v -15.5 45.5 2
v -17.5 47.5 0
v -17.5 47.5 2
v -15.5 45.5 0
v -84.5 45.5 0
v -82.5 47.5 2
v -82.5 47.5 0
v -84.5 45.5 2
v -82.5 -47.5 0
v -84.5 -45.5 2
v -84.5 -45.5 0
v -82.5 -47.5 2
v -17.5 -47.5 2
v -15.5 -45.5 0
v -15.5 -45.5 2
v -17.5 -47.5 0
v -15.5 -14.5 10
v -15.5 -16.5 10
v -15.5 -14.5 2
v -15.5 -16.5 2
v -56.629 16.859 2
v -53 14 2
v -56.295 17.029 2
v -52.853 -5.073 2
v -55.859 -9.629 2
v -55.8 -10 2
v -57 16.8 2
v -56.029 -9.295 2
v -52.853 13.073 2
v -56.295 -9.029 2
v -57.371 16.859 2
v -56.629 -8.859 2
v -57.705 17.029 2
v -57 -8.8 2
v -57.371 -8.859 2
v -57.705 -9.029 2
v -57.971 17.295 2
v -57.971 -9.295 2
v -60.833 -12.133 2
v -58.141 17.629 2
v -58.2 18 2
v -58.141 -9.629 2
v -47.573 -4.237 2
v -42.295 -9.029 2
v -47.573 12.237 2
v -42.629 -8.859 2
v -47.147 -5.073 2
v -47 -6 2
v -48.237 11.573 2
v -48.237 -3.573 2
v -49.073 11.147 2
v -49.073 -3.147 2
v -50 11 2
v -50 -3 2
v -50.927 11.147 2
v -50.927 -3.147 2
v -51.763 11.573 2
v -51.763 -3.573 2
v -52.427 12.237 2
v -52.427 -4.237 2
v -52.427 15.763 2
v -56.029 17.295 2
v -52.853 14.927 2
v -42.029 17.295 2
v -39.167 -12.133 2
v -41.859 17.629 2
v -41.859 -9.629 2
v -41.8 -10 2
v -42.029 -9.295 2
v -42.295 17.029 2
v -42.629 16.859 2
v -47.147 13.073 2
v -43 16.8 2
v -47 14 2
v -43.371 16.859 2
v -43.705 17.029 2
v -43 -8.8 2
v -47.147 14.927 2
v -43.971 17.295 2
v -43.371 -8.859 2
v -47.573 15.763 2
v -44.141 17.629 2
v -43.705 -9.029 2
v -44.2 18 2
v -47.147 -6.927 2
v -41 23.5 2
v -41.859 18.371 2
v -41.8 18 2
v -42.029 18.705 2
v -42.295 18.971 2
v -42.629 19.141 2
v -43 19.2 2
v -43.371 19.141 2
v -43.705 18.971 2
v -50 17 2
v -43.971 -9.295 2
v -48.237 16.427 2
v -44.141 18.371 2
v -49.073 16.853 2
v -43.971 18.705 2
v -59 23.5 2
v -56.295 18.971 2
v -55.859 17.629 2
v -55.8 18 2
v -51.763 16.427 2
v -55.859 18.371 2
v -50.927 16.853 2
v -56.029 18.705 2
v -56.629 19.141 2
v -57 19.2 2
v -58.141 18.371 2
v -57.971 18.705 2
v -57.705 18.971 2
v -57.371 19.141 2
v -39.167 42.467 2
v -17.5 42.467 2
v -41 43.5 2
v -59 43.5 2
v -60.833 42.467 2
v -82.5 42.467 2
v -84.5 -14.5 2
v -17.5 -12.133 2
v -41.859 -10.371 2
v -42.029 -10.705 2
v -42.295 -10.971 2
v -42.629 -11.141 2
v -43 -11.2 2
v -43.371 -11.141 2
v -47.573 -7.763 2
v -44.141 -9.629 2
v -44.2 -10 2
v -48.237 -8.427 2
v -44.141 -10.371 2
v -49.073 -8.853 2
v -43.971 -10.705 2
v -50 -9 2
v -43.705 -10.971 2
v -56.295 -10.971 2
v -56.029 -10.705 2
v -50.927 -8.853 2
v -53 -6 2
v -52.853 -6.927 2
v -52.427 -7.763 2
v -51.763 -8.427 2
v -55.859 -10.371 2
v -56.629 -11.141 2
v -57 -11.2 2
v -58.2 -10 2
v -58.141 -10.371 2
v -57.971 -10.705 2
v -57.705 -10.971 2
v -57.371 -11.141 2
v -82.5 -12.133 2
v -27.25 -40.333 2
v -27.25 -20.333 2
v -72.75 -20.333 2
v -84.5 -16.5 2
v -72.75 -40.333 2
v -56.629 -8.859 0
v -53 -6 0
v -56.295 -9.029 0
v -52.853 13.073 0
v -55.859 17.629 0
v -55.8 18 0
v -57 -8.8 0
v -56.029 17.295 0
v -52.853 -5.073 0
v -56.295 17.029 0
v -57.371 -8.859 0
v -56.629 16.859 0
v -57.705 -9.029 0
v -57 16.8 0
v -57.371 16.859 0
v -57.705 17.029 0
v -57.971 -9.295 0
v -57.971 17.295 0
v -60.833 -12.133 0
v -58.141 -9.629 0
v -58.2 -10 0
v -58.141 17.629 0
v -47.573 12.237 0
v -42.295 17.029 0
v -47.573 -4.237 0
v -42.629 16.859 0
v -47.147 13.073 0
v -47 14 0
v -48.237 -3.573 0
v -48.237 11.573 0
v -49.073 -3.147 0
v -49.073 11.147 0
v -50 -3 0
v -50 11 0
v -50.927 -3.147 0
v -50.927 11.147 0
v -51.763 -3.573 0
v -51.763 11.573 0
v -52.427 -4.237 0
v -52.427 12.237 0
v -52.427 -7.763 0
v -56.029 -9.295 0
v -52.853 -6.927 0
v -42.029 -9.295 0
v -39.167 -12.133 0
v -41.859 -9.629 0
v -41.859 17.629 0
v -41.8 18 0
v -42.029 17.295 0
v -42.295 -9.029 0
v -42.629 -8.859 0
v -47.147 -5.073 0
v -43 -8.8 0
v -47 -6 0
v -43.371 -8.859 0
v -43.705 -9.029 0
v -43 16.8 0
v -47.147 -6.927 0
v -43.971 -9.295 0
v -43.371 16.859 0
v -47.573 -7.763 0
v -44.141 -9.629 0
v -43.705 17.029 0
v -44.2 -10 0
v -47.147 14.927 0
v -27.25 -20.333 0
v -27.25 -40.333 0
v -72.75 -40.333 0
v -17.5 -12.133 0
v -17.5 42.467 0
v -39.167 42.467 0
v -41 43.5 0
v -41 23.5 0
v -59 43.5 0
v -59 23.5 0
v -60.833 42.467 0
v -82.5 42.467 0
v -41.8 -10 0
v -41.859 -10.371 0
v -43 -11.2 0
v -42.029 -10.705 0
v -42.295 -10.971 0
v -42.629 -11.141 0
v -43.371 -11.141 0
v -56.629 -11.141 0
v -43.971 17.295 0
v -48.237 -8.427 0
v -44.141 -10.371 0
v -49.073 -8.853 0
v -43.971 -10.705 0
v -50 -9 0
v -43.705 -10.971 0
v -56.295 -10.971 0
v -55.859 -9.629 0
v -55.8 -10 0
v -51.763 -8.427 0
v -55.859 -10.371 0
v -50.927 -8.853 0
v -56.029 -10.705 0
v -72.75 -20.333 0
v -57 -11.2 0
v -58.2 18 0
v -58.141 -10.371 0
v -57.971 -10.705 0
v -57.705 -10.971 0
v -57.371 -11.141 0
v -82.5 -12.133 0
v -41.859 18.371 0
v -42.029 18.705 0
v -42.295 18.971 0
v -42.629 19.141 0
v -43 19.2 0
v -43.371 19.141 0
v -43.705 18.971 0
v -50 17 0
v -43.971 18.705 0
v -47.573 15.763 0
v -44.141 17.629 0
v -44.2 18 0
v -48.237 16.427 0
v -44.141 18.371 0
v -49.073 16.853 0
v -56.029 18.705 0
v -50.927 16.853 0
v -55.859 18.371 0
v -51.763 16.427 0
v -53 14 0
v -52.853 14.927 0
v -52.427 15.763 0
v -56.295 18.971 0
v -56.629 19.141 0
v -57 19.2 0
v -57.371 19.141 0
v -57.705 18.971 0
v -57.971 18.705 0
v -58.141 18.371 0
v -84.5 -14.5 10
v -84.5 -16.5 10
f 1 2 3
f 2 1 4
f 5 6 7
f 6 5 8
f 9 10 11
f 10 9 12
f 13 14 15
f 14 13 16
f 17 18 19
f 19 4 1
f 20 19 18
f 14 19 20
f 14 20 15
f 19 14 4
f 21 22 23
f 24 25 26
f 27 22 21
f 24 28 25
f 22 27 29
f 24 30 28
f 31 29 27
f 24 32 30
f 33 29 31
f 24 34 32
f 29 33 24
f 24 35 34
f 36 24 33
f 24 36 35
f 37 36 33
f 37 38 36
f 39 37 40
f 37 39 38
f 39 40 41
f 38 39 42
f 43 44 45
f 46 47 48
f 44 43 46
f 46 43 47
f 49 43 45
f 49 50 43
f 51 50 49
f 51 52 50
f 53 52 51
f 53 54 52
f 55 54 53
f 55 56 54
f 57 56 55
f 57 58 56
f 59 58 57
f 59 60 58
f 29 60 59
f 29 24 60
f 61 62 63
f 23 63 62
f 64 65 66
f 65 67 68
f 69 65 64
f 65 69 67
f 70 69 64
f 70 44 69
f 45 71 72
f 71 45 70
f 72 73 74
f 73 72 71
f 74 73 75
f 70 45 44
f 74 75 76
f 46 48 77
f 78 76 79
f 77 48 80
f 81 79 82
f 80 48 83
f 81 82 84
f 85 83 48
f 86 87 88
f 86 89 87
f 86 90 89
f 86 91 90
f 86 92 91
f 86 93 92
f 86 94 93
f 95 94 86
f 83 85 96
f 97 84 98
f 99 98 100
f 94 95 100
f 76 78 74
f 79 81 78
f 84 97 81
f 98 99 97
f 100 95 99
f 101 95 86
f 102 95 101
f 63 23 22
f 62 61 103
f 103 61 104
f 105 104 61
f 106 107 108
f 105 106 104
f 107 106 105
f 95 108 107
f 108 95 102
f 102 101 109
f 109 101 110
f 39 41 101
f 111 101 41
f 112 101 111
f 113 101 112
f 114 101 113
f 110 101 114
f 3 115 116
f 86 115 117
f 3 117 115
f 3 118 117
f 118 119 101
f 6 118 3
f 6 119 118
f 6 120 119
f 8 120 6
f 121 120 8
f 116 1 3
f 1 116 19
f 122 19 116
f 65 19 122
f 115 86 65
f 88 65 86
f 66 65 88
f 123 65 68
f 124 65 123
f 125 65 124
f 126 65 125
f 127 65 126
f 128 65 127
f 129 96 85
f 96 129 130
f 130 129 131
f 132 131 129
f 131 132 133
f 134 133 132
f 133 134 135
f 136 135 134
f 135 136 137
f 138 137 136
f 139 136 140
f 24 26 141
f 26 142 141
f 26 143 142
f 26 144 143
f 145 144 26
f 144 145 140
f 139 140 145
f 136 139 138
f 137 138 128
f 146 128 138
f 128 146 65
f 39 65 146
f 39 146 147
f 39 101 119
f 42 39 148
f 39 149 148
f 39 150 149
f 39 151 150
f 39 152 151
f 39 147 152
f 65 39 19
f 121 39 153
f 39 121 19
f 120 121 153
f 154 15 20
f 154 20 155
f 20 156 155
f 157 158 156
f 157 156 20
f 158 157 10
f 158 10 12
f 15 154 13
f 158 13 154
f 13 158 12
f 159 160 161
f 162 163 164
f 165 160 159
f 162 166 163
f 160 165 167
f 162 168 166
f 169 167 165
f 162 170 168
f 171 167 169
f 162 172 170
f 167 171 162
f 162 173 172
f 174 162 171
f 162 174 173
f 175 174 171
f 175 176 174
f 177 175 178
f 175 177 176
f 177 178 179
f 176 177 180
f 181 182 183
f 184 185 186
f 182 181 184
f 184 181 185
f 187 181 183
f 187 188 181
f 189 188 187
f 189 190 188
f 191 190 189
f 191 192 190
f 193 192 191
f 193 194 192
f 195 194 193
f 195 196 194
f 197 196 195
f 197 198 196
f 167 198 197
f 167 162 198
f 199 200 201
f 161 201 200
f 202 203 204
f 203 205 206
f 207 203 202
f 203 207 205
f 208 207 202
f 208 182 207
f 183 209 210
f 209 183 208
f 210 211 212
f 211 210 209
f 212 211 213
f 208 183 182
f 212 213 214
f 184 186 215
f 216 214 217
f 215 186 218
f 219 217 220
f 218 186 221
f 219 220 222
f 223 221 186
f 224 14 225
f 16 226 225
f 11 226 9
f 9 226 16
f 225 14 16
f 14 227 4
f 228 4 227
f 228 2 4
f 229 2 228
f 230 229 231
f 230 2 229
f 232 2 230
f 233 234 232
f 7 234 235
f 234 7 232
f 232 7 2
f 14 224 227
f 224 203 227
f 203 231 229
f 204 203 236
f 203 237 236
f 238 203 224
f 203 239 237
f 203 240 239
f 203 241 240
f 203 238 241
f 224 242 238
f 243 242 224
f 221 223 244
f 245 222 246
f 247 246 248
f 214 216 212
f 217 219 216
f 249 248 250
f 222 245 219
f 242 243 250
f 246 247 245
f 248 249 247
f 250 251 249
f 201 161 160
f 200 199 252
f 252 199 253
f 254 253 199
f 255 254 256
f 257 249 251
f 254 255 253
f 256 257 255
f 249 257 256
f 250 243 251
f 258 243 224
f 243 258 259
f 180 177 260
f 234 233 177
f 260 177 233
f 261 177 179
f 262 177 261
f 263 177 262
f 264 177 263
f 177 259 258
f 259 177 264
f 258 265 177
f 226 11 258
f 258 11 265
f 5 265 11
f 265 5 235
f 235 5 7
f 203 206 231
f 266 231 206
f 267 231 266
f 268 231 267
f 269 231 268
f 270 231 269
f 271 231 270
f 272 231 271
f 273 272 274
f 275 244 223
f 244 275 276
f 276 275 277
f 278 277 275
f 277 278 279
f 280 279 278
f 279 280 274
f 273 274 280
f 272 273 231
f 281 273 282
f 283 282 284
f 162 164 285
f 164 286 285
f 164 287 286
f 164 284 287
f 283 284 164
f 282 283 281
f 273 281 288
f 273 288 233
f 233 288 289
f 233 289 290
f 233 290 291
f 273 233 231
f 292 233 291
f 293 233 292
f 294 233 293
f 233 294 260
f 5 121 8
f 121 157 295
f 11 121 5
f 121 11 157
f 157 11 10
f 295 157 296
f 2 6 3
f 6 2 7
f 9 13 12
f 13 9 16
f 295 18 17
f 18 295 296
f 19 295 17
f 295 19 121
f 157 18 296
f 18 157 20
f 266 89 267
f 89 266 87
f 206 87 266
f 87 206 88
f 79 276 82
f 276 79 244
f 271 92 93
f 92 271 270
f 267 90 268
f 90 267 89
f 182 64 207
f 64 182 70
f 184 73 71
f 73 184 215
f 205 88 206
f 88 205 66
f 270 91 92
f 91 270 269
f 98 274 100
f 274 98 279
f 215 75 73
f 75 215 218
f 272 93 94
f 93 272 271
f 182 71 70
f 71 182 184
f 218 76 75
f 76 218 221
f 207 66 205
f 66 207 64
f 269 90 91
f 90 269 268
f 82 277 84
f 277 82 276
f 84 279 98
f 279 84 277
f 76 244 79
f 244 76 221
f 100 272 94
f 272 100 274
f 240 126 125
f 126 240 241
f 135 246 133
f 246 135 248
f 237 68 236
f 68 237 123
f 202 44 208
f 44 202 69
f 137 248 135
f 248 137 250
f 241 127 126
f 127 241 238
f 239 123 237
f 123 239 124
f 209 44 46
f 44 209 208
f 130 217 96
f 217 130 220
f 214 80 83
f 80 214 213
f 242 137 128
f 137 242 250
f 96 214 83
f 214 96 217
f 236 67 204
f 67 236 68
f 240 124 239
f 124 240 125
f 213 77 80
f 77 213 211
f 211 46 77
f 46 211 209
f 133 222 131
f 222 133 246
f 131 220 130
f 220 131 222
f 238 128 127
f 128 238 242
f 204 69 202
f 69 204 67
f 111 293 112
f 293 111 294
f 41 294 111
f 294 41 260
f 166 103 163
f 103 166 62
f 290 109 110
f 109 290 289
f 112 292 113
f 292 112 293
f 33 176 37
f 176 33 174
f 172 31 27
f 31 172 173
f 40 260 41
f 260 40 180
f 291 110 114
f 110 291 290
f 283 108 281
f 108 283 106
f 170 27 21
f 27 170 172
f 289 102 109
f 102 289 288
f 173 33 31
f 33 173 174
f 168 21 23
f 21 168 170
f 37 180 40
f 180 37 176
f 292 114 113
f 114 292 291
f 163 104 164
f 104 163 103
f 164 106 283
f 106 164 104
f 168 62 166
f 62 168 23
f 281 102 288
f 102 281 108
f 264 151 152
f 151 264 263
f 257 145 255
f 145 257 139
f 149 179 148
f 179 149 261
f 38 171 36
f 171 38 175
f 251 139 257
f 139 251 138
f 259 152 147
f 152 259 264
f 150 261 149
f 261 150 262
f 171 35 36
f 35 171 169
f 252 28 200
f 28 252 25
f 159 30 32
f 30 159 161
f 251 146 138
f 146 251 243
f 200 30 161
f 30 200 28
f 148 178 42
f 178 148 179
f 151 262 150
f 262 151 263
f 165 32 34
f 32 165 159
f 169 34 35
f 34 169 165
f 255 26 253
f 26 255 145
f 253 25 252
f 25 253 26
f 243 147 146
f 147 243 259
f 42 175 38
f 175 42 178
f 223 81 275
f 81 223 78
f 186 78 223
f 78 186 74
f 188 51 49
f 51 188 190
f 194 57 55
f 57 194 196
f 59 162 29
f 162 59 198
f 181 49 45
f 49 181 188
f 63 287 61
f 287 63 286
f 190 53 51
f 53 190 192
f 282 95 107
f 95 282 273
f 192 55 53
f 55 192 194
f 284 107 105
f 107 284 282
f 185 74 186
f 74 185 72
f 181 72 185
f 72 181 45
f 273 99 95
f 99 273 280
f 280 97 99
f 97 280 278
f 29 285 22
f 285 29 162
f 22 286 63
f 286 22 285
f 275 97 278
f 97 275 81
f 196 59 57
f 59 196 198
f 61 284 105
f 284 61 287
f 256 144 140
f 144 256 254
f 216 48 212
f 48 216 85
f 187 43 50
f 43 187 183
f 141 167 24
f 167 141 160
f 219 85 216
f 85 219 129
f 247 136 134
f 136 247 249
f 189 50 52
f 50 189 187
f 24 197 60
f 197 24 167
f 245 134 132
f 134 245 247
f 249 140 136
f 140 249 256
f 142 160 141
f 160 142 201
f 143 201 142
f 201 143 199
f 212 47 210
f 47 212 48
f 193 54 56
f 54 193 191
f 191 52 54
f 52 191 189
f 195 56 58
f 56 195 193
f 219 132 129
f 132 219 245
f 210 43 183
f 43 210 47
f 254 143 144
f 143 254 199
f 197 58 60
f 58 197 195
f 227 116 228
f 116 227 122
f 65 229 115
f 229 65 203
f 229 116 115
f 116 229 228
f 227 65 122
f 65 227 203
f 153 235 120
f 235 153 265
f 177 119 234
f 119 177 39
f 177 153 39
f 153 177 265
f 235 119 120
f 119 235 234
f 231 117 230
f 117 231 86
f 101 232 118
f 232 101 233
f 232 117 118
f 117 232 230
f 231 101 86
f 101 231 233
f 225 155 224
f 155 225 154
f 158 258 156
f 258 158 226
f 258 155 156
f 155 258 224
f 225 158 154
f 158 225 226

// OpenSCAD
/*

  tcsm_raspi_holder.scad
  
  2021 (c) olikraus@gmail.com

  This work is licensed under the Creative Commons Attribution-NonCommercial-ShareAlike 4.0 International License.
  To view a copy of this license, visit http://creativecommons.org/licenses/by-nc-sa/4.0/.

*/


include <trading_card_compare_machine.scad>;

translate([-50,0,0])
raspi_holder();
